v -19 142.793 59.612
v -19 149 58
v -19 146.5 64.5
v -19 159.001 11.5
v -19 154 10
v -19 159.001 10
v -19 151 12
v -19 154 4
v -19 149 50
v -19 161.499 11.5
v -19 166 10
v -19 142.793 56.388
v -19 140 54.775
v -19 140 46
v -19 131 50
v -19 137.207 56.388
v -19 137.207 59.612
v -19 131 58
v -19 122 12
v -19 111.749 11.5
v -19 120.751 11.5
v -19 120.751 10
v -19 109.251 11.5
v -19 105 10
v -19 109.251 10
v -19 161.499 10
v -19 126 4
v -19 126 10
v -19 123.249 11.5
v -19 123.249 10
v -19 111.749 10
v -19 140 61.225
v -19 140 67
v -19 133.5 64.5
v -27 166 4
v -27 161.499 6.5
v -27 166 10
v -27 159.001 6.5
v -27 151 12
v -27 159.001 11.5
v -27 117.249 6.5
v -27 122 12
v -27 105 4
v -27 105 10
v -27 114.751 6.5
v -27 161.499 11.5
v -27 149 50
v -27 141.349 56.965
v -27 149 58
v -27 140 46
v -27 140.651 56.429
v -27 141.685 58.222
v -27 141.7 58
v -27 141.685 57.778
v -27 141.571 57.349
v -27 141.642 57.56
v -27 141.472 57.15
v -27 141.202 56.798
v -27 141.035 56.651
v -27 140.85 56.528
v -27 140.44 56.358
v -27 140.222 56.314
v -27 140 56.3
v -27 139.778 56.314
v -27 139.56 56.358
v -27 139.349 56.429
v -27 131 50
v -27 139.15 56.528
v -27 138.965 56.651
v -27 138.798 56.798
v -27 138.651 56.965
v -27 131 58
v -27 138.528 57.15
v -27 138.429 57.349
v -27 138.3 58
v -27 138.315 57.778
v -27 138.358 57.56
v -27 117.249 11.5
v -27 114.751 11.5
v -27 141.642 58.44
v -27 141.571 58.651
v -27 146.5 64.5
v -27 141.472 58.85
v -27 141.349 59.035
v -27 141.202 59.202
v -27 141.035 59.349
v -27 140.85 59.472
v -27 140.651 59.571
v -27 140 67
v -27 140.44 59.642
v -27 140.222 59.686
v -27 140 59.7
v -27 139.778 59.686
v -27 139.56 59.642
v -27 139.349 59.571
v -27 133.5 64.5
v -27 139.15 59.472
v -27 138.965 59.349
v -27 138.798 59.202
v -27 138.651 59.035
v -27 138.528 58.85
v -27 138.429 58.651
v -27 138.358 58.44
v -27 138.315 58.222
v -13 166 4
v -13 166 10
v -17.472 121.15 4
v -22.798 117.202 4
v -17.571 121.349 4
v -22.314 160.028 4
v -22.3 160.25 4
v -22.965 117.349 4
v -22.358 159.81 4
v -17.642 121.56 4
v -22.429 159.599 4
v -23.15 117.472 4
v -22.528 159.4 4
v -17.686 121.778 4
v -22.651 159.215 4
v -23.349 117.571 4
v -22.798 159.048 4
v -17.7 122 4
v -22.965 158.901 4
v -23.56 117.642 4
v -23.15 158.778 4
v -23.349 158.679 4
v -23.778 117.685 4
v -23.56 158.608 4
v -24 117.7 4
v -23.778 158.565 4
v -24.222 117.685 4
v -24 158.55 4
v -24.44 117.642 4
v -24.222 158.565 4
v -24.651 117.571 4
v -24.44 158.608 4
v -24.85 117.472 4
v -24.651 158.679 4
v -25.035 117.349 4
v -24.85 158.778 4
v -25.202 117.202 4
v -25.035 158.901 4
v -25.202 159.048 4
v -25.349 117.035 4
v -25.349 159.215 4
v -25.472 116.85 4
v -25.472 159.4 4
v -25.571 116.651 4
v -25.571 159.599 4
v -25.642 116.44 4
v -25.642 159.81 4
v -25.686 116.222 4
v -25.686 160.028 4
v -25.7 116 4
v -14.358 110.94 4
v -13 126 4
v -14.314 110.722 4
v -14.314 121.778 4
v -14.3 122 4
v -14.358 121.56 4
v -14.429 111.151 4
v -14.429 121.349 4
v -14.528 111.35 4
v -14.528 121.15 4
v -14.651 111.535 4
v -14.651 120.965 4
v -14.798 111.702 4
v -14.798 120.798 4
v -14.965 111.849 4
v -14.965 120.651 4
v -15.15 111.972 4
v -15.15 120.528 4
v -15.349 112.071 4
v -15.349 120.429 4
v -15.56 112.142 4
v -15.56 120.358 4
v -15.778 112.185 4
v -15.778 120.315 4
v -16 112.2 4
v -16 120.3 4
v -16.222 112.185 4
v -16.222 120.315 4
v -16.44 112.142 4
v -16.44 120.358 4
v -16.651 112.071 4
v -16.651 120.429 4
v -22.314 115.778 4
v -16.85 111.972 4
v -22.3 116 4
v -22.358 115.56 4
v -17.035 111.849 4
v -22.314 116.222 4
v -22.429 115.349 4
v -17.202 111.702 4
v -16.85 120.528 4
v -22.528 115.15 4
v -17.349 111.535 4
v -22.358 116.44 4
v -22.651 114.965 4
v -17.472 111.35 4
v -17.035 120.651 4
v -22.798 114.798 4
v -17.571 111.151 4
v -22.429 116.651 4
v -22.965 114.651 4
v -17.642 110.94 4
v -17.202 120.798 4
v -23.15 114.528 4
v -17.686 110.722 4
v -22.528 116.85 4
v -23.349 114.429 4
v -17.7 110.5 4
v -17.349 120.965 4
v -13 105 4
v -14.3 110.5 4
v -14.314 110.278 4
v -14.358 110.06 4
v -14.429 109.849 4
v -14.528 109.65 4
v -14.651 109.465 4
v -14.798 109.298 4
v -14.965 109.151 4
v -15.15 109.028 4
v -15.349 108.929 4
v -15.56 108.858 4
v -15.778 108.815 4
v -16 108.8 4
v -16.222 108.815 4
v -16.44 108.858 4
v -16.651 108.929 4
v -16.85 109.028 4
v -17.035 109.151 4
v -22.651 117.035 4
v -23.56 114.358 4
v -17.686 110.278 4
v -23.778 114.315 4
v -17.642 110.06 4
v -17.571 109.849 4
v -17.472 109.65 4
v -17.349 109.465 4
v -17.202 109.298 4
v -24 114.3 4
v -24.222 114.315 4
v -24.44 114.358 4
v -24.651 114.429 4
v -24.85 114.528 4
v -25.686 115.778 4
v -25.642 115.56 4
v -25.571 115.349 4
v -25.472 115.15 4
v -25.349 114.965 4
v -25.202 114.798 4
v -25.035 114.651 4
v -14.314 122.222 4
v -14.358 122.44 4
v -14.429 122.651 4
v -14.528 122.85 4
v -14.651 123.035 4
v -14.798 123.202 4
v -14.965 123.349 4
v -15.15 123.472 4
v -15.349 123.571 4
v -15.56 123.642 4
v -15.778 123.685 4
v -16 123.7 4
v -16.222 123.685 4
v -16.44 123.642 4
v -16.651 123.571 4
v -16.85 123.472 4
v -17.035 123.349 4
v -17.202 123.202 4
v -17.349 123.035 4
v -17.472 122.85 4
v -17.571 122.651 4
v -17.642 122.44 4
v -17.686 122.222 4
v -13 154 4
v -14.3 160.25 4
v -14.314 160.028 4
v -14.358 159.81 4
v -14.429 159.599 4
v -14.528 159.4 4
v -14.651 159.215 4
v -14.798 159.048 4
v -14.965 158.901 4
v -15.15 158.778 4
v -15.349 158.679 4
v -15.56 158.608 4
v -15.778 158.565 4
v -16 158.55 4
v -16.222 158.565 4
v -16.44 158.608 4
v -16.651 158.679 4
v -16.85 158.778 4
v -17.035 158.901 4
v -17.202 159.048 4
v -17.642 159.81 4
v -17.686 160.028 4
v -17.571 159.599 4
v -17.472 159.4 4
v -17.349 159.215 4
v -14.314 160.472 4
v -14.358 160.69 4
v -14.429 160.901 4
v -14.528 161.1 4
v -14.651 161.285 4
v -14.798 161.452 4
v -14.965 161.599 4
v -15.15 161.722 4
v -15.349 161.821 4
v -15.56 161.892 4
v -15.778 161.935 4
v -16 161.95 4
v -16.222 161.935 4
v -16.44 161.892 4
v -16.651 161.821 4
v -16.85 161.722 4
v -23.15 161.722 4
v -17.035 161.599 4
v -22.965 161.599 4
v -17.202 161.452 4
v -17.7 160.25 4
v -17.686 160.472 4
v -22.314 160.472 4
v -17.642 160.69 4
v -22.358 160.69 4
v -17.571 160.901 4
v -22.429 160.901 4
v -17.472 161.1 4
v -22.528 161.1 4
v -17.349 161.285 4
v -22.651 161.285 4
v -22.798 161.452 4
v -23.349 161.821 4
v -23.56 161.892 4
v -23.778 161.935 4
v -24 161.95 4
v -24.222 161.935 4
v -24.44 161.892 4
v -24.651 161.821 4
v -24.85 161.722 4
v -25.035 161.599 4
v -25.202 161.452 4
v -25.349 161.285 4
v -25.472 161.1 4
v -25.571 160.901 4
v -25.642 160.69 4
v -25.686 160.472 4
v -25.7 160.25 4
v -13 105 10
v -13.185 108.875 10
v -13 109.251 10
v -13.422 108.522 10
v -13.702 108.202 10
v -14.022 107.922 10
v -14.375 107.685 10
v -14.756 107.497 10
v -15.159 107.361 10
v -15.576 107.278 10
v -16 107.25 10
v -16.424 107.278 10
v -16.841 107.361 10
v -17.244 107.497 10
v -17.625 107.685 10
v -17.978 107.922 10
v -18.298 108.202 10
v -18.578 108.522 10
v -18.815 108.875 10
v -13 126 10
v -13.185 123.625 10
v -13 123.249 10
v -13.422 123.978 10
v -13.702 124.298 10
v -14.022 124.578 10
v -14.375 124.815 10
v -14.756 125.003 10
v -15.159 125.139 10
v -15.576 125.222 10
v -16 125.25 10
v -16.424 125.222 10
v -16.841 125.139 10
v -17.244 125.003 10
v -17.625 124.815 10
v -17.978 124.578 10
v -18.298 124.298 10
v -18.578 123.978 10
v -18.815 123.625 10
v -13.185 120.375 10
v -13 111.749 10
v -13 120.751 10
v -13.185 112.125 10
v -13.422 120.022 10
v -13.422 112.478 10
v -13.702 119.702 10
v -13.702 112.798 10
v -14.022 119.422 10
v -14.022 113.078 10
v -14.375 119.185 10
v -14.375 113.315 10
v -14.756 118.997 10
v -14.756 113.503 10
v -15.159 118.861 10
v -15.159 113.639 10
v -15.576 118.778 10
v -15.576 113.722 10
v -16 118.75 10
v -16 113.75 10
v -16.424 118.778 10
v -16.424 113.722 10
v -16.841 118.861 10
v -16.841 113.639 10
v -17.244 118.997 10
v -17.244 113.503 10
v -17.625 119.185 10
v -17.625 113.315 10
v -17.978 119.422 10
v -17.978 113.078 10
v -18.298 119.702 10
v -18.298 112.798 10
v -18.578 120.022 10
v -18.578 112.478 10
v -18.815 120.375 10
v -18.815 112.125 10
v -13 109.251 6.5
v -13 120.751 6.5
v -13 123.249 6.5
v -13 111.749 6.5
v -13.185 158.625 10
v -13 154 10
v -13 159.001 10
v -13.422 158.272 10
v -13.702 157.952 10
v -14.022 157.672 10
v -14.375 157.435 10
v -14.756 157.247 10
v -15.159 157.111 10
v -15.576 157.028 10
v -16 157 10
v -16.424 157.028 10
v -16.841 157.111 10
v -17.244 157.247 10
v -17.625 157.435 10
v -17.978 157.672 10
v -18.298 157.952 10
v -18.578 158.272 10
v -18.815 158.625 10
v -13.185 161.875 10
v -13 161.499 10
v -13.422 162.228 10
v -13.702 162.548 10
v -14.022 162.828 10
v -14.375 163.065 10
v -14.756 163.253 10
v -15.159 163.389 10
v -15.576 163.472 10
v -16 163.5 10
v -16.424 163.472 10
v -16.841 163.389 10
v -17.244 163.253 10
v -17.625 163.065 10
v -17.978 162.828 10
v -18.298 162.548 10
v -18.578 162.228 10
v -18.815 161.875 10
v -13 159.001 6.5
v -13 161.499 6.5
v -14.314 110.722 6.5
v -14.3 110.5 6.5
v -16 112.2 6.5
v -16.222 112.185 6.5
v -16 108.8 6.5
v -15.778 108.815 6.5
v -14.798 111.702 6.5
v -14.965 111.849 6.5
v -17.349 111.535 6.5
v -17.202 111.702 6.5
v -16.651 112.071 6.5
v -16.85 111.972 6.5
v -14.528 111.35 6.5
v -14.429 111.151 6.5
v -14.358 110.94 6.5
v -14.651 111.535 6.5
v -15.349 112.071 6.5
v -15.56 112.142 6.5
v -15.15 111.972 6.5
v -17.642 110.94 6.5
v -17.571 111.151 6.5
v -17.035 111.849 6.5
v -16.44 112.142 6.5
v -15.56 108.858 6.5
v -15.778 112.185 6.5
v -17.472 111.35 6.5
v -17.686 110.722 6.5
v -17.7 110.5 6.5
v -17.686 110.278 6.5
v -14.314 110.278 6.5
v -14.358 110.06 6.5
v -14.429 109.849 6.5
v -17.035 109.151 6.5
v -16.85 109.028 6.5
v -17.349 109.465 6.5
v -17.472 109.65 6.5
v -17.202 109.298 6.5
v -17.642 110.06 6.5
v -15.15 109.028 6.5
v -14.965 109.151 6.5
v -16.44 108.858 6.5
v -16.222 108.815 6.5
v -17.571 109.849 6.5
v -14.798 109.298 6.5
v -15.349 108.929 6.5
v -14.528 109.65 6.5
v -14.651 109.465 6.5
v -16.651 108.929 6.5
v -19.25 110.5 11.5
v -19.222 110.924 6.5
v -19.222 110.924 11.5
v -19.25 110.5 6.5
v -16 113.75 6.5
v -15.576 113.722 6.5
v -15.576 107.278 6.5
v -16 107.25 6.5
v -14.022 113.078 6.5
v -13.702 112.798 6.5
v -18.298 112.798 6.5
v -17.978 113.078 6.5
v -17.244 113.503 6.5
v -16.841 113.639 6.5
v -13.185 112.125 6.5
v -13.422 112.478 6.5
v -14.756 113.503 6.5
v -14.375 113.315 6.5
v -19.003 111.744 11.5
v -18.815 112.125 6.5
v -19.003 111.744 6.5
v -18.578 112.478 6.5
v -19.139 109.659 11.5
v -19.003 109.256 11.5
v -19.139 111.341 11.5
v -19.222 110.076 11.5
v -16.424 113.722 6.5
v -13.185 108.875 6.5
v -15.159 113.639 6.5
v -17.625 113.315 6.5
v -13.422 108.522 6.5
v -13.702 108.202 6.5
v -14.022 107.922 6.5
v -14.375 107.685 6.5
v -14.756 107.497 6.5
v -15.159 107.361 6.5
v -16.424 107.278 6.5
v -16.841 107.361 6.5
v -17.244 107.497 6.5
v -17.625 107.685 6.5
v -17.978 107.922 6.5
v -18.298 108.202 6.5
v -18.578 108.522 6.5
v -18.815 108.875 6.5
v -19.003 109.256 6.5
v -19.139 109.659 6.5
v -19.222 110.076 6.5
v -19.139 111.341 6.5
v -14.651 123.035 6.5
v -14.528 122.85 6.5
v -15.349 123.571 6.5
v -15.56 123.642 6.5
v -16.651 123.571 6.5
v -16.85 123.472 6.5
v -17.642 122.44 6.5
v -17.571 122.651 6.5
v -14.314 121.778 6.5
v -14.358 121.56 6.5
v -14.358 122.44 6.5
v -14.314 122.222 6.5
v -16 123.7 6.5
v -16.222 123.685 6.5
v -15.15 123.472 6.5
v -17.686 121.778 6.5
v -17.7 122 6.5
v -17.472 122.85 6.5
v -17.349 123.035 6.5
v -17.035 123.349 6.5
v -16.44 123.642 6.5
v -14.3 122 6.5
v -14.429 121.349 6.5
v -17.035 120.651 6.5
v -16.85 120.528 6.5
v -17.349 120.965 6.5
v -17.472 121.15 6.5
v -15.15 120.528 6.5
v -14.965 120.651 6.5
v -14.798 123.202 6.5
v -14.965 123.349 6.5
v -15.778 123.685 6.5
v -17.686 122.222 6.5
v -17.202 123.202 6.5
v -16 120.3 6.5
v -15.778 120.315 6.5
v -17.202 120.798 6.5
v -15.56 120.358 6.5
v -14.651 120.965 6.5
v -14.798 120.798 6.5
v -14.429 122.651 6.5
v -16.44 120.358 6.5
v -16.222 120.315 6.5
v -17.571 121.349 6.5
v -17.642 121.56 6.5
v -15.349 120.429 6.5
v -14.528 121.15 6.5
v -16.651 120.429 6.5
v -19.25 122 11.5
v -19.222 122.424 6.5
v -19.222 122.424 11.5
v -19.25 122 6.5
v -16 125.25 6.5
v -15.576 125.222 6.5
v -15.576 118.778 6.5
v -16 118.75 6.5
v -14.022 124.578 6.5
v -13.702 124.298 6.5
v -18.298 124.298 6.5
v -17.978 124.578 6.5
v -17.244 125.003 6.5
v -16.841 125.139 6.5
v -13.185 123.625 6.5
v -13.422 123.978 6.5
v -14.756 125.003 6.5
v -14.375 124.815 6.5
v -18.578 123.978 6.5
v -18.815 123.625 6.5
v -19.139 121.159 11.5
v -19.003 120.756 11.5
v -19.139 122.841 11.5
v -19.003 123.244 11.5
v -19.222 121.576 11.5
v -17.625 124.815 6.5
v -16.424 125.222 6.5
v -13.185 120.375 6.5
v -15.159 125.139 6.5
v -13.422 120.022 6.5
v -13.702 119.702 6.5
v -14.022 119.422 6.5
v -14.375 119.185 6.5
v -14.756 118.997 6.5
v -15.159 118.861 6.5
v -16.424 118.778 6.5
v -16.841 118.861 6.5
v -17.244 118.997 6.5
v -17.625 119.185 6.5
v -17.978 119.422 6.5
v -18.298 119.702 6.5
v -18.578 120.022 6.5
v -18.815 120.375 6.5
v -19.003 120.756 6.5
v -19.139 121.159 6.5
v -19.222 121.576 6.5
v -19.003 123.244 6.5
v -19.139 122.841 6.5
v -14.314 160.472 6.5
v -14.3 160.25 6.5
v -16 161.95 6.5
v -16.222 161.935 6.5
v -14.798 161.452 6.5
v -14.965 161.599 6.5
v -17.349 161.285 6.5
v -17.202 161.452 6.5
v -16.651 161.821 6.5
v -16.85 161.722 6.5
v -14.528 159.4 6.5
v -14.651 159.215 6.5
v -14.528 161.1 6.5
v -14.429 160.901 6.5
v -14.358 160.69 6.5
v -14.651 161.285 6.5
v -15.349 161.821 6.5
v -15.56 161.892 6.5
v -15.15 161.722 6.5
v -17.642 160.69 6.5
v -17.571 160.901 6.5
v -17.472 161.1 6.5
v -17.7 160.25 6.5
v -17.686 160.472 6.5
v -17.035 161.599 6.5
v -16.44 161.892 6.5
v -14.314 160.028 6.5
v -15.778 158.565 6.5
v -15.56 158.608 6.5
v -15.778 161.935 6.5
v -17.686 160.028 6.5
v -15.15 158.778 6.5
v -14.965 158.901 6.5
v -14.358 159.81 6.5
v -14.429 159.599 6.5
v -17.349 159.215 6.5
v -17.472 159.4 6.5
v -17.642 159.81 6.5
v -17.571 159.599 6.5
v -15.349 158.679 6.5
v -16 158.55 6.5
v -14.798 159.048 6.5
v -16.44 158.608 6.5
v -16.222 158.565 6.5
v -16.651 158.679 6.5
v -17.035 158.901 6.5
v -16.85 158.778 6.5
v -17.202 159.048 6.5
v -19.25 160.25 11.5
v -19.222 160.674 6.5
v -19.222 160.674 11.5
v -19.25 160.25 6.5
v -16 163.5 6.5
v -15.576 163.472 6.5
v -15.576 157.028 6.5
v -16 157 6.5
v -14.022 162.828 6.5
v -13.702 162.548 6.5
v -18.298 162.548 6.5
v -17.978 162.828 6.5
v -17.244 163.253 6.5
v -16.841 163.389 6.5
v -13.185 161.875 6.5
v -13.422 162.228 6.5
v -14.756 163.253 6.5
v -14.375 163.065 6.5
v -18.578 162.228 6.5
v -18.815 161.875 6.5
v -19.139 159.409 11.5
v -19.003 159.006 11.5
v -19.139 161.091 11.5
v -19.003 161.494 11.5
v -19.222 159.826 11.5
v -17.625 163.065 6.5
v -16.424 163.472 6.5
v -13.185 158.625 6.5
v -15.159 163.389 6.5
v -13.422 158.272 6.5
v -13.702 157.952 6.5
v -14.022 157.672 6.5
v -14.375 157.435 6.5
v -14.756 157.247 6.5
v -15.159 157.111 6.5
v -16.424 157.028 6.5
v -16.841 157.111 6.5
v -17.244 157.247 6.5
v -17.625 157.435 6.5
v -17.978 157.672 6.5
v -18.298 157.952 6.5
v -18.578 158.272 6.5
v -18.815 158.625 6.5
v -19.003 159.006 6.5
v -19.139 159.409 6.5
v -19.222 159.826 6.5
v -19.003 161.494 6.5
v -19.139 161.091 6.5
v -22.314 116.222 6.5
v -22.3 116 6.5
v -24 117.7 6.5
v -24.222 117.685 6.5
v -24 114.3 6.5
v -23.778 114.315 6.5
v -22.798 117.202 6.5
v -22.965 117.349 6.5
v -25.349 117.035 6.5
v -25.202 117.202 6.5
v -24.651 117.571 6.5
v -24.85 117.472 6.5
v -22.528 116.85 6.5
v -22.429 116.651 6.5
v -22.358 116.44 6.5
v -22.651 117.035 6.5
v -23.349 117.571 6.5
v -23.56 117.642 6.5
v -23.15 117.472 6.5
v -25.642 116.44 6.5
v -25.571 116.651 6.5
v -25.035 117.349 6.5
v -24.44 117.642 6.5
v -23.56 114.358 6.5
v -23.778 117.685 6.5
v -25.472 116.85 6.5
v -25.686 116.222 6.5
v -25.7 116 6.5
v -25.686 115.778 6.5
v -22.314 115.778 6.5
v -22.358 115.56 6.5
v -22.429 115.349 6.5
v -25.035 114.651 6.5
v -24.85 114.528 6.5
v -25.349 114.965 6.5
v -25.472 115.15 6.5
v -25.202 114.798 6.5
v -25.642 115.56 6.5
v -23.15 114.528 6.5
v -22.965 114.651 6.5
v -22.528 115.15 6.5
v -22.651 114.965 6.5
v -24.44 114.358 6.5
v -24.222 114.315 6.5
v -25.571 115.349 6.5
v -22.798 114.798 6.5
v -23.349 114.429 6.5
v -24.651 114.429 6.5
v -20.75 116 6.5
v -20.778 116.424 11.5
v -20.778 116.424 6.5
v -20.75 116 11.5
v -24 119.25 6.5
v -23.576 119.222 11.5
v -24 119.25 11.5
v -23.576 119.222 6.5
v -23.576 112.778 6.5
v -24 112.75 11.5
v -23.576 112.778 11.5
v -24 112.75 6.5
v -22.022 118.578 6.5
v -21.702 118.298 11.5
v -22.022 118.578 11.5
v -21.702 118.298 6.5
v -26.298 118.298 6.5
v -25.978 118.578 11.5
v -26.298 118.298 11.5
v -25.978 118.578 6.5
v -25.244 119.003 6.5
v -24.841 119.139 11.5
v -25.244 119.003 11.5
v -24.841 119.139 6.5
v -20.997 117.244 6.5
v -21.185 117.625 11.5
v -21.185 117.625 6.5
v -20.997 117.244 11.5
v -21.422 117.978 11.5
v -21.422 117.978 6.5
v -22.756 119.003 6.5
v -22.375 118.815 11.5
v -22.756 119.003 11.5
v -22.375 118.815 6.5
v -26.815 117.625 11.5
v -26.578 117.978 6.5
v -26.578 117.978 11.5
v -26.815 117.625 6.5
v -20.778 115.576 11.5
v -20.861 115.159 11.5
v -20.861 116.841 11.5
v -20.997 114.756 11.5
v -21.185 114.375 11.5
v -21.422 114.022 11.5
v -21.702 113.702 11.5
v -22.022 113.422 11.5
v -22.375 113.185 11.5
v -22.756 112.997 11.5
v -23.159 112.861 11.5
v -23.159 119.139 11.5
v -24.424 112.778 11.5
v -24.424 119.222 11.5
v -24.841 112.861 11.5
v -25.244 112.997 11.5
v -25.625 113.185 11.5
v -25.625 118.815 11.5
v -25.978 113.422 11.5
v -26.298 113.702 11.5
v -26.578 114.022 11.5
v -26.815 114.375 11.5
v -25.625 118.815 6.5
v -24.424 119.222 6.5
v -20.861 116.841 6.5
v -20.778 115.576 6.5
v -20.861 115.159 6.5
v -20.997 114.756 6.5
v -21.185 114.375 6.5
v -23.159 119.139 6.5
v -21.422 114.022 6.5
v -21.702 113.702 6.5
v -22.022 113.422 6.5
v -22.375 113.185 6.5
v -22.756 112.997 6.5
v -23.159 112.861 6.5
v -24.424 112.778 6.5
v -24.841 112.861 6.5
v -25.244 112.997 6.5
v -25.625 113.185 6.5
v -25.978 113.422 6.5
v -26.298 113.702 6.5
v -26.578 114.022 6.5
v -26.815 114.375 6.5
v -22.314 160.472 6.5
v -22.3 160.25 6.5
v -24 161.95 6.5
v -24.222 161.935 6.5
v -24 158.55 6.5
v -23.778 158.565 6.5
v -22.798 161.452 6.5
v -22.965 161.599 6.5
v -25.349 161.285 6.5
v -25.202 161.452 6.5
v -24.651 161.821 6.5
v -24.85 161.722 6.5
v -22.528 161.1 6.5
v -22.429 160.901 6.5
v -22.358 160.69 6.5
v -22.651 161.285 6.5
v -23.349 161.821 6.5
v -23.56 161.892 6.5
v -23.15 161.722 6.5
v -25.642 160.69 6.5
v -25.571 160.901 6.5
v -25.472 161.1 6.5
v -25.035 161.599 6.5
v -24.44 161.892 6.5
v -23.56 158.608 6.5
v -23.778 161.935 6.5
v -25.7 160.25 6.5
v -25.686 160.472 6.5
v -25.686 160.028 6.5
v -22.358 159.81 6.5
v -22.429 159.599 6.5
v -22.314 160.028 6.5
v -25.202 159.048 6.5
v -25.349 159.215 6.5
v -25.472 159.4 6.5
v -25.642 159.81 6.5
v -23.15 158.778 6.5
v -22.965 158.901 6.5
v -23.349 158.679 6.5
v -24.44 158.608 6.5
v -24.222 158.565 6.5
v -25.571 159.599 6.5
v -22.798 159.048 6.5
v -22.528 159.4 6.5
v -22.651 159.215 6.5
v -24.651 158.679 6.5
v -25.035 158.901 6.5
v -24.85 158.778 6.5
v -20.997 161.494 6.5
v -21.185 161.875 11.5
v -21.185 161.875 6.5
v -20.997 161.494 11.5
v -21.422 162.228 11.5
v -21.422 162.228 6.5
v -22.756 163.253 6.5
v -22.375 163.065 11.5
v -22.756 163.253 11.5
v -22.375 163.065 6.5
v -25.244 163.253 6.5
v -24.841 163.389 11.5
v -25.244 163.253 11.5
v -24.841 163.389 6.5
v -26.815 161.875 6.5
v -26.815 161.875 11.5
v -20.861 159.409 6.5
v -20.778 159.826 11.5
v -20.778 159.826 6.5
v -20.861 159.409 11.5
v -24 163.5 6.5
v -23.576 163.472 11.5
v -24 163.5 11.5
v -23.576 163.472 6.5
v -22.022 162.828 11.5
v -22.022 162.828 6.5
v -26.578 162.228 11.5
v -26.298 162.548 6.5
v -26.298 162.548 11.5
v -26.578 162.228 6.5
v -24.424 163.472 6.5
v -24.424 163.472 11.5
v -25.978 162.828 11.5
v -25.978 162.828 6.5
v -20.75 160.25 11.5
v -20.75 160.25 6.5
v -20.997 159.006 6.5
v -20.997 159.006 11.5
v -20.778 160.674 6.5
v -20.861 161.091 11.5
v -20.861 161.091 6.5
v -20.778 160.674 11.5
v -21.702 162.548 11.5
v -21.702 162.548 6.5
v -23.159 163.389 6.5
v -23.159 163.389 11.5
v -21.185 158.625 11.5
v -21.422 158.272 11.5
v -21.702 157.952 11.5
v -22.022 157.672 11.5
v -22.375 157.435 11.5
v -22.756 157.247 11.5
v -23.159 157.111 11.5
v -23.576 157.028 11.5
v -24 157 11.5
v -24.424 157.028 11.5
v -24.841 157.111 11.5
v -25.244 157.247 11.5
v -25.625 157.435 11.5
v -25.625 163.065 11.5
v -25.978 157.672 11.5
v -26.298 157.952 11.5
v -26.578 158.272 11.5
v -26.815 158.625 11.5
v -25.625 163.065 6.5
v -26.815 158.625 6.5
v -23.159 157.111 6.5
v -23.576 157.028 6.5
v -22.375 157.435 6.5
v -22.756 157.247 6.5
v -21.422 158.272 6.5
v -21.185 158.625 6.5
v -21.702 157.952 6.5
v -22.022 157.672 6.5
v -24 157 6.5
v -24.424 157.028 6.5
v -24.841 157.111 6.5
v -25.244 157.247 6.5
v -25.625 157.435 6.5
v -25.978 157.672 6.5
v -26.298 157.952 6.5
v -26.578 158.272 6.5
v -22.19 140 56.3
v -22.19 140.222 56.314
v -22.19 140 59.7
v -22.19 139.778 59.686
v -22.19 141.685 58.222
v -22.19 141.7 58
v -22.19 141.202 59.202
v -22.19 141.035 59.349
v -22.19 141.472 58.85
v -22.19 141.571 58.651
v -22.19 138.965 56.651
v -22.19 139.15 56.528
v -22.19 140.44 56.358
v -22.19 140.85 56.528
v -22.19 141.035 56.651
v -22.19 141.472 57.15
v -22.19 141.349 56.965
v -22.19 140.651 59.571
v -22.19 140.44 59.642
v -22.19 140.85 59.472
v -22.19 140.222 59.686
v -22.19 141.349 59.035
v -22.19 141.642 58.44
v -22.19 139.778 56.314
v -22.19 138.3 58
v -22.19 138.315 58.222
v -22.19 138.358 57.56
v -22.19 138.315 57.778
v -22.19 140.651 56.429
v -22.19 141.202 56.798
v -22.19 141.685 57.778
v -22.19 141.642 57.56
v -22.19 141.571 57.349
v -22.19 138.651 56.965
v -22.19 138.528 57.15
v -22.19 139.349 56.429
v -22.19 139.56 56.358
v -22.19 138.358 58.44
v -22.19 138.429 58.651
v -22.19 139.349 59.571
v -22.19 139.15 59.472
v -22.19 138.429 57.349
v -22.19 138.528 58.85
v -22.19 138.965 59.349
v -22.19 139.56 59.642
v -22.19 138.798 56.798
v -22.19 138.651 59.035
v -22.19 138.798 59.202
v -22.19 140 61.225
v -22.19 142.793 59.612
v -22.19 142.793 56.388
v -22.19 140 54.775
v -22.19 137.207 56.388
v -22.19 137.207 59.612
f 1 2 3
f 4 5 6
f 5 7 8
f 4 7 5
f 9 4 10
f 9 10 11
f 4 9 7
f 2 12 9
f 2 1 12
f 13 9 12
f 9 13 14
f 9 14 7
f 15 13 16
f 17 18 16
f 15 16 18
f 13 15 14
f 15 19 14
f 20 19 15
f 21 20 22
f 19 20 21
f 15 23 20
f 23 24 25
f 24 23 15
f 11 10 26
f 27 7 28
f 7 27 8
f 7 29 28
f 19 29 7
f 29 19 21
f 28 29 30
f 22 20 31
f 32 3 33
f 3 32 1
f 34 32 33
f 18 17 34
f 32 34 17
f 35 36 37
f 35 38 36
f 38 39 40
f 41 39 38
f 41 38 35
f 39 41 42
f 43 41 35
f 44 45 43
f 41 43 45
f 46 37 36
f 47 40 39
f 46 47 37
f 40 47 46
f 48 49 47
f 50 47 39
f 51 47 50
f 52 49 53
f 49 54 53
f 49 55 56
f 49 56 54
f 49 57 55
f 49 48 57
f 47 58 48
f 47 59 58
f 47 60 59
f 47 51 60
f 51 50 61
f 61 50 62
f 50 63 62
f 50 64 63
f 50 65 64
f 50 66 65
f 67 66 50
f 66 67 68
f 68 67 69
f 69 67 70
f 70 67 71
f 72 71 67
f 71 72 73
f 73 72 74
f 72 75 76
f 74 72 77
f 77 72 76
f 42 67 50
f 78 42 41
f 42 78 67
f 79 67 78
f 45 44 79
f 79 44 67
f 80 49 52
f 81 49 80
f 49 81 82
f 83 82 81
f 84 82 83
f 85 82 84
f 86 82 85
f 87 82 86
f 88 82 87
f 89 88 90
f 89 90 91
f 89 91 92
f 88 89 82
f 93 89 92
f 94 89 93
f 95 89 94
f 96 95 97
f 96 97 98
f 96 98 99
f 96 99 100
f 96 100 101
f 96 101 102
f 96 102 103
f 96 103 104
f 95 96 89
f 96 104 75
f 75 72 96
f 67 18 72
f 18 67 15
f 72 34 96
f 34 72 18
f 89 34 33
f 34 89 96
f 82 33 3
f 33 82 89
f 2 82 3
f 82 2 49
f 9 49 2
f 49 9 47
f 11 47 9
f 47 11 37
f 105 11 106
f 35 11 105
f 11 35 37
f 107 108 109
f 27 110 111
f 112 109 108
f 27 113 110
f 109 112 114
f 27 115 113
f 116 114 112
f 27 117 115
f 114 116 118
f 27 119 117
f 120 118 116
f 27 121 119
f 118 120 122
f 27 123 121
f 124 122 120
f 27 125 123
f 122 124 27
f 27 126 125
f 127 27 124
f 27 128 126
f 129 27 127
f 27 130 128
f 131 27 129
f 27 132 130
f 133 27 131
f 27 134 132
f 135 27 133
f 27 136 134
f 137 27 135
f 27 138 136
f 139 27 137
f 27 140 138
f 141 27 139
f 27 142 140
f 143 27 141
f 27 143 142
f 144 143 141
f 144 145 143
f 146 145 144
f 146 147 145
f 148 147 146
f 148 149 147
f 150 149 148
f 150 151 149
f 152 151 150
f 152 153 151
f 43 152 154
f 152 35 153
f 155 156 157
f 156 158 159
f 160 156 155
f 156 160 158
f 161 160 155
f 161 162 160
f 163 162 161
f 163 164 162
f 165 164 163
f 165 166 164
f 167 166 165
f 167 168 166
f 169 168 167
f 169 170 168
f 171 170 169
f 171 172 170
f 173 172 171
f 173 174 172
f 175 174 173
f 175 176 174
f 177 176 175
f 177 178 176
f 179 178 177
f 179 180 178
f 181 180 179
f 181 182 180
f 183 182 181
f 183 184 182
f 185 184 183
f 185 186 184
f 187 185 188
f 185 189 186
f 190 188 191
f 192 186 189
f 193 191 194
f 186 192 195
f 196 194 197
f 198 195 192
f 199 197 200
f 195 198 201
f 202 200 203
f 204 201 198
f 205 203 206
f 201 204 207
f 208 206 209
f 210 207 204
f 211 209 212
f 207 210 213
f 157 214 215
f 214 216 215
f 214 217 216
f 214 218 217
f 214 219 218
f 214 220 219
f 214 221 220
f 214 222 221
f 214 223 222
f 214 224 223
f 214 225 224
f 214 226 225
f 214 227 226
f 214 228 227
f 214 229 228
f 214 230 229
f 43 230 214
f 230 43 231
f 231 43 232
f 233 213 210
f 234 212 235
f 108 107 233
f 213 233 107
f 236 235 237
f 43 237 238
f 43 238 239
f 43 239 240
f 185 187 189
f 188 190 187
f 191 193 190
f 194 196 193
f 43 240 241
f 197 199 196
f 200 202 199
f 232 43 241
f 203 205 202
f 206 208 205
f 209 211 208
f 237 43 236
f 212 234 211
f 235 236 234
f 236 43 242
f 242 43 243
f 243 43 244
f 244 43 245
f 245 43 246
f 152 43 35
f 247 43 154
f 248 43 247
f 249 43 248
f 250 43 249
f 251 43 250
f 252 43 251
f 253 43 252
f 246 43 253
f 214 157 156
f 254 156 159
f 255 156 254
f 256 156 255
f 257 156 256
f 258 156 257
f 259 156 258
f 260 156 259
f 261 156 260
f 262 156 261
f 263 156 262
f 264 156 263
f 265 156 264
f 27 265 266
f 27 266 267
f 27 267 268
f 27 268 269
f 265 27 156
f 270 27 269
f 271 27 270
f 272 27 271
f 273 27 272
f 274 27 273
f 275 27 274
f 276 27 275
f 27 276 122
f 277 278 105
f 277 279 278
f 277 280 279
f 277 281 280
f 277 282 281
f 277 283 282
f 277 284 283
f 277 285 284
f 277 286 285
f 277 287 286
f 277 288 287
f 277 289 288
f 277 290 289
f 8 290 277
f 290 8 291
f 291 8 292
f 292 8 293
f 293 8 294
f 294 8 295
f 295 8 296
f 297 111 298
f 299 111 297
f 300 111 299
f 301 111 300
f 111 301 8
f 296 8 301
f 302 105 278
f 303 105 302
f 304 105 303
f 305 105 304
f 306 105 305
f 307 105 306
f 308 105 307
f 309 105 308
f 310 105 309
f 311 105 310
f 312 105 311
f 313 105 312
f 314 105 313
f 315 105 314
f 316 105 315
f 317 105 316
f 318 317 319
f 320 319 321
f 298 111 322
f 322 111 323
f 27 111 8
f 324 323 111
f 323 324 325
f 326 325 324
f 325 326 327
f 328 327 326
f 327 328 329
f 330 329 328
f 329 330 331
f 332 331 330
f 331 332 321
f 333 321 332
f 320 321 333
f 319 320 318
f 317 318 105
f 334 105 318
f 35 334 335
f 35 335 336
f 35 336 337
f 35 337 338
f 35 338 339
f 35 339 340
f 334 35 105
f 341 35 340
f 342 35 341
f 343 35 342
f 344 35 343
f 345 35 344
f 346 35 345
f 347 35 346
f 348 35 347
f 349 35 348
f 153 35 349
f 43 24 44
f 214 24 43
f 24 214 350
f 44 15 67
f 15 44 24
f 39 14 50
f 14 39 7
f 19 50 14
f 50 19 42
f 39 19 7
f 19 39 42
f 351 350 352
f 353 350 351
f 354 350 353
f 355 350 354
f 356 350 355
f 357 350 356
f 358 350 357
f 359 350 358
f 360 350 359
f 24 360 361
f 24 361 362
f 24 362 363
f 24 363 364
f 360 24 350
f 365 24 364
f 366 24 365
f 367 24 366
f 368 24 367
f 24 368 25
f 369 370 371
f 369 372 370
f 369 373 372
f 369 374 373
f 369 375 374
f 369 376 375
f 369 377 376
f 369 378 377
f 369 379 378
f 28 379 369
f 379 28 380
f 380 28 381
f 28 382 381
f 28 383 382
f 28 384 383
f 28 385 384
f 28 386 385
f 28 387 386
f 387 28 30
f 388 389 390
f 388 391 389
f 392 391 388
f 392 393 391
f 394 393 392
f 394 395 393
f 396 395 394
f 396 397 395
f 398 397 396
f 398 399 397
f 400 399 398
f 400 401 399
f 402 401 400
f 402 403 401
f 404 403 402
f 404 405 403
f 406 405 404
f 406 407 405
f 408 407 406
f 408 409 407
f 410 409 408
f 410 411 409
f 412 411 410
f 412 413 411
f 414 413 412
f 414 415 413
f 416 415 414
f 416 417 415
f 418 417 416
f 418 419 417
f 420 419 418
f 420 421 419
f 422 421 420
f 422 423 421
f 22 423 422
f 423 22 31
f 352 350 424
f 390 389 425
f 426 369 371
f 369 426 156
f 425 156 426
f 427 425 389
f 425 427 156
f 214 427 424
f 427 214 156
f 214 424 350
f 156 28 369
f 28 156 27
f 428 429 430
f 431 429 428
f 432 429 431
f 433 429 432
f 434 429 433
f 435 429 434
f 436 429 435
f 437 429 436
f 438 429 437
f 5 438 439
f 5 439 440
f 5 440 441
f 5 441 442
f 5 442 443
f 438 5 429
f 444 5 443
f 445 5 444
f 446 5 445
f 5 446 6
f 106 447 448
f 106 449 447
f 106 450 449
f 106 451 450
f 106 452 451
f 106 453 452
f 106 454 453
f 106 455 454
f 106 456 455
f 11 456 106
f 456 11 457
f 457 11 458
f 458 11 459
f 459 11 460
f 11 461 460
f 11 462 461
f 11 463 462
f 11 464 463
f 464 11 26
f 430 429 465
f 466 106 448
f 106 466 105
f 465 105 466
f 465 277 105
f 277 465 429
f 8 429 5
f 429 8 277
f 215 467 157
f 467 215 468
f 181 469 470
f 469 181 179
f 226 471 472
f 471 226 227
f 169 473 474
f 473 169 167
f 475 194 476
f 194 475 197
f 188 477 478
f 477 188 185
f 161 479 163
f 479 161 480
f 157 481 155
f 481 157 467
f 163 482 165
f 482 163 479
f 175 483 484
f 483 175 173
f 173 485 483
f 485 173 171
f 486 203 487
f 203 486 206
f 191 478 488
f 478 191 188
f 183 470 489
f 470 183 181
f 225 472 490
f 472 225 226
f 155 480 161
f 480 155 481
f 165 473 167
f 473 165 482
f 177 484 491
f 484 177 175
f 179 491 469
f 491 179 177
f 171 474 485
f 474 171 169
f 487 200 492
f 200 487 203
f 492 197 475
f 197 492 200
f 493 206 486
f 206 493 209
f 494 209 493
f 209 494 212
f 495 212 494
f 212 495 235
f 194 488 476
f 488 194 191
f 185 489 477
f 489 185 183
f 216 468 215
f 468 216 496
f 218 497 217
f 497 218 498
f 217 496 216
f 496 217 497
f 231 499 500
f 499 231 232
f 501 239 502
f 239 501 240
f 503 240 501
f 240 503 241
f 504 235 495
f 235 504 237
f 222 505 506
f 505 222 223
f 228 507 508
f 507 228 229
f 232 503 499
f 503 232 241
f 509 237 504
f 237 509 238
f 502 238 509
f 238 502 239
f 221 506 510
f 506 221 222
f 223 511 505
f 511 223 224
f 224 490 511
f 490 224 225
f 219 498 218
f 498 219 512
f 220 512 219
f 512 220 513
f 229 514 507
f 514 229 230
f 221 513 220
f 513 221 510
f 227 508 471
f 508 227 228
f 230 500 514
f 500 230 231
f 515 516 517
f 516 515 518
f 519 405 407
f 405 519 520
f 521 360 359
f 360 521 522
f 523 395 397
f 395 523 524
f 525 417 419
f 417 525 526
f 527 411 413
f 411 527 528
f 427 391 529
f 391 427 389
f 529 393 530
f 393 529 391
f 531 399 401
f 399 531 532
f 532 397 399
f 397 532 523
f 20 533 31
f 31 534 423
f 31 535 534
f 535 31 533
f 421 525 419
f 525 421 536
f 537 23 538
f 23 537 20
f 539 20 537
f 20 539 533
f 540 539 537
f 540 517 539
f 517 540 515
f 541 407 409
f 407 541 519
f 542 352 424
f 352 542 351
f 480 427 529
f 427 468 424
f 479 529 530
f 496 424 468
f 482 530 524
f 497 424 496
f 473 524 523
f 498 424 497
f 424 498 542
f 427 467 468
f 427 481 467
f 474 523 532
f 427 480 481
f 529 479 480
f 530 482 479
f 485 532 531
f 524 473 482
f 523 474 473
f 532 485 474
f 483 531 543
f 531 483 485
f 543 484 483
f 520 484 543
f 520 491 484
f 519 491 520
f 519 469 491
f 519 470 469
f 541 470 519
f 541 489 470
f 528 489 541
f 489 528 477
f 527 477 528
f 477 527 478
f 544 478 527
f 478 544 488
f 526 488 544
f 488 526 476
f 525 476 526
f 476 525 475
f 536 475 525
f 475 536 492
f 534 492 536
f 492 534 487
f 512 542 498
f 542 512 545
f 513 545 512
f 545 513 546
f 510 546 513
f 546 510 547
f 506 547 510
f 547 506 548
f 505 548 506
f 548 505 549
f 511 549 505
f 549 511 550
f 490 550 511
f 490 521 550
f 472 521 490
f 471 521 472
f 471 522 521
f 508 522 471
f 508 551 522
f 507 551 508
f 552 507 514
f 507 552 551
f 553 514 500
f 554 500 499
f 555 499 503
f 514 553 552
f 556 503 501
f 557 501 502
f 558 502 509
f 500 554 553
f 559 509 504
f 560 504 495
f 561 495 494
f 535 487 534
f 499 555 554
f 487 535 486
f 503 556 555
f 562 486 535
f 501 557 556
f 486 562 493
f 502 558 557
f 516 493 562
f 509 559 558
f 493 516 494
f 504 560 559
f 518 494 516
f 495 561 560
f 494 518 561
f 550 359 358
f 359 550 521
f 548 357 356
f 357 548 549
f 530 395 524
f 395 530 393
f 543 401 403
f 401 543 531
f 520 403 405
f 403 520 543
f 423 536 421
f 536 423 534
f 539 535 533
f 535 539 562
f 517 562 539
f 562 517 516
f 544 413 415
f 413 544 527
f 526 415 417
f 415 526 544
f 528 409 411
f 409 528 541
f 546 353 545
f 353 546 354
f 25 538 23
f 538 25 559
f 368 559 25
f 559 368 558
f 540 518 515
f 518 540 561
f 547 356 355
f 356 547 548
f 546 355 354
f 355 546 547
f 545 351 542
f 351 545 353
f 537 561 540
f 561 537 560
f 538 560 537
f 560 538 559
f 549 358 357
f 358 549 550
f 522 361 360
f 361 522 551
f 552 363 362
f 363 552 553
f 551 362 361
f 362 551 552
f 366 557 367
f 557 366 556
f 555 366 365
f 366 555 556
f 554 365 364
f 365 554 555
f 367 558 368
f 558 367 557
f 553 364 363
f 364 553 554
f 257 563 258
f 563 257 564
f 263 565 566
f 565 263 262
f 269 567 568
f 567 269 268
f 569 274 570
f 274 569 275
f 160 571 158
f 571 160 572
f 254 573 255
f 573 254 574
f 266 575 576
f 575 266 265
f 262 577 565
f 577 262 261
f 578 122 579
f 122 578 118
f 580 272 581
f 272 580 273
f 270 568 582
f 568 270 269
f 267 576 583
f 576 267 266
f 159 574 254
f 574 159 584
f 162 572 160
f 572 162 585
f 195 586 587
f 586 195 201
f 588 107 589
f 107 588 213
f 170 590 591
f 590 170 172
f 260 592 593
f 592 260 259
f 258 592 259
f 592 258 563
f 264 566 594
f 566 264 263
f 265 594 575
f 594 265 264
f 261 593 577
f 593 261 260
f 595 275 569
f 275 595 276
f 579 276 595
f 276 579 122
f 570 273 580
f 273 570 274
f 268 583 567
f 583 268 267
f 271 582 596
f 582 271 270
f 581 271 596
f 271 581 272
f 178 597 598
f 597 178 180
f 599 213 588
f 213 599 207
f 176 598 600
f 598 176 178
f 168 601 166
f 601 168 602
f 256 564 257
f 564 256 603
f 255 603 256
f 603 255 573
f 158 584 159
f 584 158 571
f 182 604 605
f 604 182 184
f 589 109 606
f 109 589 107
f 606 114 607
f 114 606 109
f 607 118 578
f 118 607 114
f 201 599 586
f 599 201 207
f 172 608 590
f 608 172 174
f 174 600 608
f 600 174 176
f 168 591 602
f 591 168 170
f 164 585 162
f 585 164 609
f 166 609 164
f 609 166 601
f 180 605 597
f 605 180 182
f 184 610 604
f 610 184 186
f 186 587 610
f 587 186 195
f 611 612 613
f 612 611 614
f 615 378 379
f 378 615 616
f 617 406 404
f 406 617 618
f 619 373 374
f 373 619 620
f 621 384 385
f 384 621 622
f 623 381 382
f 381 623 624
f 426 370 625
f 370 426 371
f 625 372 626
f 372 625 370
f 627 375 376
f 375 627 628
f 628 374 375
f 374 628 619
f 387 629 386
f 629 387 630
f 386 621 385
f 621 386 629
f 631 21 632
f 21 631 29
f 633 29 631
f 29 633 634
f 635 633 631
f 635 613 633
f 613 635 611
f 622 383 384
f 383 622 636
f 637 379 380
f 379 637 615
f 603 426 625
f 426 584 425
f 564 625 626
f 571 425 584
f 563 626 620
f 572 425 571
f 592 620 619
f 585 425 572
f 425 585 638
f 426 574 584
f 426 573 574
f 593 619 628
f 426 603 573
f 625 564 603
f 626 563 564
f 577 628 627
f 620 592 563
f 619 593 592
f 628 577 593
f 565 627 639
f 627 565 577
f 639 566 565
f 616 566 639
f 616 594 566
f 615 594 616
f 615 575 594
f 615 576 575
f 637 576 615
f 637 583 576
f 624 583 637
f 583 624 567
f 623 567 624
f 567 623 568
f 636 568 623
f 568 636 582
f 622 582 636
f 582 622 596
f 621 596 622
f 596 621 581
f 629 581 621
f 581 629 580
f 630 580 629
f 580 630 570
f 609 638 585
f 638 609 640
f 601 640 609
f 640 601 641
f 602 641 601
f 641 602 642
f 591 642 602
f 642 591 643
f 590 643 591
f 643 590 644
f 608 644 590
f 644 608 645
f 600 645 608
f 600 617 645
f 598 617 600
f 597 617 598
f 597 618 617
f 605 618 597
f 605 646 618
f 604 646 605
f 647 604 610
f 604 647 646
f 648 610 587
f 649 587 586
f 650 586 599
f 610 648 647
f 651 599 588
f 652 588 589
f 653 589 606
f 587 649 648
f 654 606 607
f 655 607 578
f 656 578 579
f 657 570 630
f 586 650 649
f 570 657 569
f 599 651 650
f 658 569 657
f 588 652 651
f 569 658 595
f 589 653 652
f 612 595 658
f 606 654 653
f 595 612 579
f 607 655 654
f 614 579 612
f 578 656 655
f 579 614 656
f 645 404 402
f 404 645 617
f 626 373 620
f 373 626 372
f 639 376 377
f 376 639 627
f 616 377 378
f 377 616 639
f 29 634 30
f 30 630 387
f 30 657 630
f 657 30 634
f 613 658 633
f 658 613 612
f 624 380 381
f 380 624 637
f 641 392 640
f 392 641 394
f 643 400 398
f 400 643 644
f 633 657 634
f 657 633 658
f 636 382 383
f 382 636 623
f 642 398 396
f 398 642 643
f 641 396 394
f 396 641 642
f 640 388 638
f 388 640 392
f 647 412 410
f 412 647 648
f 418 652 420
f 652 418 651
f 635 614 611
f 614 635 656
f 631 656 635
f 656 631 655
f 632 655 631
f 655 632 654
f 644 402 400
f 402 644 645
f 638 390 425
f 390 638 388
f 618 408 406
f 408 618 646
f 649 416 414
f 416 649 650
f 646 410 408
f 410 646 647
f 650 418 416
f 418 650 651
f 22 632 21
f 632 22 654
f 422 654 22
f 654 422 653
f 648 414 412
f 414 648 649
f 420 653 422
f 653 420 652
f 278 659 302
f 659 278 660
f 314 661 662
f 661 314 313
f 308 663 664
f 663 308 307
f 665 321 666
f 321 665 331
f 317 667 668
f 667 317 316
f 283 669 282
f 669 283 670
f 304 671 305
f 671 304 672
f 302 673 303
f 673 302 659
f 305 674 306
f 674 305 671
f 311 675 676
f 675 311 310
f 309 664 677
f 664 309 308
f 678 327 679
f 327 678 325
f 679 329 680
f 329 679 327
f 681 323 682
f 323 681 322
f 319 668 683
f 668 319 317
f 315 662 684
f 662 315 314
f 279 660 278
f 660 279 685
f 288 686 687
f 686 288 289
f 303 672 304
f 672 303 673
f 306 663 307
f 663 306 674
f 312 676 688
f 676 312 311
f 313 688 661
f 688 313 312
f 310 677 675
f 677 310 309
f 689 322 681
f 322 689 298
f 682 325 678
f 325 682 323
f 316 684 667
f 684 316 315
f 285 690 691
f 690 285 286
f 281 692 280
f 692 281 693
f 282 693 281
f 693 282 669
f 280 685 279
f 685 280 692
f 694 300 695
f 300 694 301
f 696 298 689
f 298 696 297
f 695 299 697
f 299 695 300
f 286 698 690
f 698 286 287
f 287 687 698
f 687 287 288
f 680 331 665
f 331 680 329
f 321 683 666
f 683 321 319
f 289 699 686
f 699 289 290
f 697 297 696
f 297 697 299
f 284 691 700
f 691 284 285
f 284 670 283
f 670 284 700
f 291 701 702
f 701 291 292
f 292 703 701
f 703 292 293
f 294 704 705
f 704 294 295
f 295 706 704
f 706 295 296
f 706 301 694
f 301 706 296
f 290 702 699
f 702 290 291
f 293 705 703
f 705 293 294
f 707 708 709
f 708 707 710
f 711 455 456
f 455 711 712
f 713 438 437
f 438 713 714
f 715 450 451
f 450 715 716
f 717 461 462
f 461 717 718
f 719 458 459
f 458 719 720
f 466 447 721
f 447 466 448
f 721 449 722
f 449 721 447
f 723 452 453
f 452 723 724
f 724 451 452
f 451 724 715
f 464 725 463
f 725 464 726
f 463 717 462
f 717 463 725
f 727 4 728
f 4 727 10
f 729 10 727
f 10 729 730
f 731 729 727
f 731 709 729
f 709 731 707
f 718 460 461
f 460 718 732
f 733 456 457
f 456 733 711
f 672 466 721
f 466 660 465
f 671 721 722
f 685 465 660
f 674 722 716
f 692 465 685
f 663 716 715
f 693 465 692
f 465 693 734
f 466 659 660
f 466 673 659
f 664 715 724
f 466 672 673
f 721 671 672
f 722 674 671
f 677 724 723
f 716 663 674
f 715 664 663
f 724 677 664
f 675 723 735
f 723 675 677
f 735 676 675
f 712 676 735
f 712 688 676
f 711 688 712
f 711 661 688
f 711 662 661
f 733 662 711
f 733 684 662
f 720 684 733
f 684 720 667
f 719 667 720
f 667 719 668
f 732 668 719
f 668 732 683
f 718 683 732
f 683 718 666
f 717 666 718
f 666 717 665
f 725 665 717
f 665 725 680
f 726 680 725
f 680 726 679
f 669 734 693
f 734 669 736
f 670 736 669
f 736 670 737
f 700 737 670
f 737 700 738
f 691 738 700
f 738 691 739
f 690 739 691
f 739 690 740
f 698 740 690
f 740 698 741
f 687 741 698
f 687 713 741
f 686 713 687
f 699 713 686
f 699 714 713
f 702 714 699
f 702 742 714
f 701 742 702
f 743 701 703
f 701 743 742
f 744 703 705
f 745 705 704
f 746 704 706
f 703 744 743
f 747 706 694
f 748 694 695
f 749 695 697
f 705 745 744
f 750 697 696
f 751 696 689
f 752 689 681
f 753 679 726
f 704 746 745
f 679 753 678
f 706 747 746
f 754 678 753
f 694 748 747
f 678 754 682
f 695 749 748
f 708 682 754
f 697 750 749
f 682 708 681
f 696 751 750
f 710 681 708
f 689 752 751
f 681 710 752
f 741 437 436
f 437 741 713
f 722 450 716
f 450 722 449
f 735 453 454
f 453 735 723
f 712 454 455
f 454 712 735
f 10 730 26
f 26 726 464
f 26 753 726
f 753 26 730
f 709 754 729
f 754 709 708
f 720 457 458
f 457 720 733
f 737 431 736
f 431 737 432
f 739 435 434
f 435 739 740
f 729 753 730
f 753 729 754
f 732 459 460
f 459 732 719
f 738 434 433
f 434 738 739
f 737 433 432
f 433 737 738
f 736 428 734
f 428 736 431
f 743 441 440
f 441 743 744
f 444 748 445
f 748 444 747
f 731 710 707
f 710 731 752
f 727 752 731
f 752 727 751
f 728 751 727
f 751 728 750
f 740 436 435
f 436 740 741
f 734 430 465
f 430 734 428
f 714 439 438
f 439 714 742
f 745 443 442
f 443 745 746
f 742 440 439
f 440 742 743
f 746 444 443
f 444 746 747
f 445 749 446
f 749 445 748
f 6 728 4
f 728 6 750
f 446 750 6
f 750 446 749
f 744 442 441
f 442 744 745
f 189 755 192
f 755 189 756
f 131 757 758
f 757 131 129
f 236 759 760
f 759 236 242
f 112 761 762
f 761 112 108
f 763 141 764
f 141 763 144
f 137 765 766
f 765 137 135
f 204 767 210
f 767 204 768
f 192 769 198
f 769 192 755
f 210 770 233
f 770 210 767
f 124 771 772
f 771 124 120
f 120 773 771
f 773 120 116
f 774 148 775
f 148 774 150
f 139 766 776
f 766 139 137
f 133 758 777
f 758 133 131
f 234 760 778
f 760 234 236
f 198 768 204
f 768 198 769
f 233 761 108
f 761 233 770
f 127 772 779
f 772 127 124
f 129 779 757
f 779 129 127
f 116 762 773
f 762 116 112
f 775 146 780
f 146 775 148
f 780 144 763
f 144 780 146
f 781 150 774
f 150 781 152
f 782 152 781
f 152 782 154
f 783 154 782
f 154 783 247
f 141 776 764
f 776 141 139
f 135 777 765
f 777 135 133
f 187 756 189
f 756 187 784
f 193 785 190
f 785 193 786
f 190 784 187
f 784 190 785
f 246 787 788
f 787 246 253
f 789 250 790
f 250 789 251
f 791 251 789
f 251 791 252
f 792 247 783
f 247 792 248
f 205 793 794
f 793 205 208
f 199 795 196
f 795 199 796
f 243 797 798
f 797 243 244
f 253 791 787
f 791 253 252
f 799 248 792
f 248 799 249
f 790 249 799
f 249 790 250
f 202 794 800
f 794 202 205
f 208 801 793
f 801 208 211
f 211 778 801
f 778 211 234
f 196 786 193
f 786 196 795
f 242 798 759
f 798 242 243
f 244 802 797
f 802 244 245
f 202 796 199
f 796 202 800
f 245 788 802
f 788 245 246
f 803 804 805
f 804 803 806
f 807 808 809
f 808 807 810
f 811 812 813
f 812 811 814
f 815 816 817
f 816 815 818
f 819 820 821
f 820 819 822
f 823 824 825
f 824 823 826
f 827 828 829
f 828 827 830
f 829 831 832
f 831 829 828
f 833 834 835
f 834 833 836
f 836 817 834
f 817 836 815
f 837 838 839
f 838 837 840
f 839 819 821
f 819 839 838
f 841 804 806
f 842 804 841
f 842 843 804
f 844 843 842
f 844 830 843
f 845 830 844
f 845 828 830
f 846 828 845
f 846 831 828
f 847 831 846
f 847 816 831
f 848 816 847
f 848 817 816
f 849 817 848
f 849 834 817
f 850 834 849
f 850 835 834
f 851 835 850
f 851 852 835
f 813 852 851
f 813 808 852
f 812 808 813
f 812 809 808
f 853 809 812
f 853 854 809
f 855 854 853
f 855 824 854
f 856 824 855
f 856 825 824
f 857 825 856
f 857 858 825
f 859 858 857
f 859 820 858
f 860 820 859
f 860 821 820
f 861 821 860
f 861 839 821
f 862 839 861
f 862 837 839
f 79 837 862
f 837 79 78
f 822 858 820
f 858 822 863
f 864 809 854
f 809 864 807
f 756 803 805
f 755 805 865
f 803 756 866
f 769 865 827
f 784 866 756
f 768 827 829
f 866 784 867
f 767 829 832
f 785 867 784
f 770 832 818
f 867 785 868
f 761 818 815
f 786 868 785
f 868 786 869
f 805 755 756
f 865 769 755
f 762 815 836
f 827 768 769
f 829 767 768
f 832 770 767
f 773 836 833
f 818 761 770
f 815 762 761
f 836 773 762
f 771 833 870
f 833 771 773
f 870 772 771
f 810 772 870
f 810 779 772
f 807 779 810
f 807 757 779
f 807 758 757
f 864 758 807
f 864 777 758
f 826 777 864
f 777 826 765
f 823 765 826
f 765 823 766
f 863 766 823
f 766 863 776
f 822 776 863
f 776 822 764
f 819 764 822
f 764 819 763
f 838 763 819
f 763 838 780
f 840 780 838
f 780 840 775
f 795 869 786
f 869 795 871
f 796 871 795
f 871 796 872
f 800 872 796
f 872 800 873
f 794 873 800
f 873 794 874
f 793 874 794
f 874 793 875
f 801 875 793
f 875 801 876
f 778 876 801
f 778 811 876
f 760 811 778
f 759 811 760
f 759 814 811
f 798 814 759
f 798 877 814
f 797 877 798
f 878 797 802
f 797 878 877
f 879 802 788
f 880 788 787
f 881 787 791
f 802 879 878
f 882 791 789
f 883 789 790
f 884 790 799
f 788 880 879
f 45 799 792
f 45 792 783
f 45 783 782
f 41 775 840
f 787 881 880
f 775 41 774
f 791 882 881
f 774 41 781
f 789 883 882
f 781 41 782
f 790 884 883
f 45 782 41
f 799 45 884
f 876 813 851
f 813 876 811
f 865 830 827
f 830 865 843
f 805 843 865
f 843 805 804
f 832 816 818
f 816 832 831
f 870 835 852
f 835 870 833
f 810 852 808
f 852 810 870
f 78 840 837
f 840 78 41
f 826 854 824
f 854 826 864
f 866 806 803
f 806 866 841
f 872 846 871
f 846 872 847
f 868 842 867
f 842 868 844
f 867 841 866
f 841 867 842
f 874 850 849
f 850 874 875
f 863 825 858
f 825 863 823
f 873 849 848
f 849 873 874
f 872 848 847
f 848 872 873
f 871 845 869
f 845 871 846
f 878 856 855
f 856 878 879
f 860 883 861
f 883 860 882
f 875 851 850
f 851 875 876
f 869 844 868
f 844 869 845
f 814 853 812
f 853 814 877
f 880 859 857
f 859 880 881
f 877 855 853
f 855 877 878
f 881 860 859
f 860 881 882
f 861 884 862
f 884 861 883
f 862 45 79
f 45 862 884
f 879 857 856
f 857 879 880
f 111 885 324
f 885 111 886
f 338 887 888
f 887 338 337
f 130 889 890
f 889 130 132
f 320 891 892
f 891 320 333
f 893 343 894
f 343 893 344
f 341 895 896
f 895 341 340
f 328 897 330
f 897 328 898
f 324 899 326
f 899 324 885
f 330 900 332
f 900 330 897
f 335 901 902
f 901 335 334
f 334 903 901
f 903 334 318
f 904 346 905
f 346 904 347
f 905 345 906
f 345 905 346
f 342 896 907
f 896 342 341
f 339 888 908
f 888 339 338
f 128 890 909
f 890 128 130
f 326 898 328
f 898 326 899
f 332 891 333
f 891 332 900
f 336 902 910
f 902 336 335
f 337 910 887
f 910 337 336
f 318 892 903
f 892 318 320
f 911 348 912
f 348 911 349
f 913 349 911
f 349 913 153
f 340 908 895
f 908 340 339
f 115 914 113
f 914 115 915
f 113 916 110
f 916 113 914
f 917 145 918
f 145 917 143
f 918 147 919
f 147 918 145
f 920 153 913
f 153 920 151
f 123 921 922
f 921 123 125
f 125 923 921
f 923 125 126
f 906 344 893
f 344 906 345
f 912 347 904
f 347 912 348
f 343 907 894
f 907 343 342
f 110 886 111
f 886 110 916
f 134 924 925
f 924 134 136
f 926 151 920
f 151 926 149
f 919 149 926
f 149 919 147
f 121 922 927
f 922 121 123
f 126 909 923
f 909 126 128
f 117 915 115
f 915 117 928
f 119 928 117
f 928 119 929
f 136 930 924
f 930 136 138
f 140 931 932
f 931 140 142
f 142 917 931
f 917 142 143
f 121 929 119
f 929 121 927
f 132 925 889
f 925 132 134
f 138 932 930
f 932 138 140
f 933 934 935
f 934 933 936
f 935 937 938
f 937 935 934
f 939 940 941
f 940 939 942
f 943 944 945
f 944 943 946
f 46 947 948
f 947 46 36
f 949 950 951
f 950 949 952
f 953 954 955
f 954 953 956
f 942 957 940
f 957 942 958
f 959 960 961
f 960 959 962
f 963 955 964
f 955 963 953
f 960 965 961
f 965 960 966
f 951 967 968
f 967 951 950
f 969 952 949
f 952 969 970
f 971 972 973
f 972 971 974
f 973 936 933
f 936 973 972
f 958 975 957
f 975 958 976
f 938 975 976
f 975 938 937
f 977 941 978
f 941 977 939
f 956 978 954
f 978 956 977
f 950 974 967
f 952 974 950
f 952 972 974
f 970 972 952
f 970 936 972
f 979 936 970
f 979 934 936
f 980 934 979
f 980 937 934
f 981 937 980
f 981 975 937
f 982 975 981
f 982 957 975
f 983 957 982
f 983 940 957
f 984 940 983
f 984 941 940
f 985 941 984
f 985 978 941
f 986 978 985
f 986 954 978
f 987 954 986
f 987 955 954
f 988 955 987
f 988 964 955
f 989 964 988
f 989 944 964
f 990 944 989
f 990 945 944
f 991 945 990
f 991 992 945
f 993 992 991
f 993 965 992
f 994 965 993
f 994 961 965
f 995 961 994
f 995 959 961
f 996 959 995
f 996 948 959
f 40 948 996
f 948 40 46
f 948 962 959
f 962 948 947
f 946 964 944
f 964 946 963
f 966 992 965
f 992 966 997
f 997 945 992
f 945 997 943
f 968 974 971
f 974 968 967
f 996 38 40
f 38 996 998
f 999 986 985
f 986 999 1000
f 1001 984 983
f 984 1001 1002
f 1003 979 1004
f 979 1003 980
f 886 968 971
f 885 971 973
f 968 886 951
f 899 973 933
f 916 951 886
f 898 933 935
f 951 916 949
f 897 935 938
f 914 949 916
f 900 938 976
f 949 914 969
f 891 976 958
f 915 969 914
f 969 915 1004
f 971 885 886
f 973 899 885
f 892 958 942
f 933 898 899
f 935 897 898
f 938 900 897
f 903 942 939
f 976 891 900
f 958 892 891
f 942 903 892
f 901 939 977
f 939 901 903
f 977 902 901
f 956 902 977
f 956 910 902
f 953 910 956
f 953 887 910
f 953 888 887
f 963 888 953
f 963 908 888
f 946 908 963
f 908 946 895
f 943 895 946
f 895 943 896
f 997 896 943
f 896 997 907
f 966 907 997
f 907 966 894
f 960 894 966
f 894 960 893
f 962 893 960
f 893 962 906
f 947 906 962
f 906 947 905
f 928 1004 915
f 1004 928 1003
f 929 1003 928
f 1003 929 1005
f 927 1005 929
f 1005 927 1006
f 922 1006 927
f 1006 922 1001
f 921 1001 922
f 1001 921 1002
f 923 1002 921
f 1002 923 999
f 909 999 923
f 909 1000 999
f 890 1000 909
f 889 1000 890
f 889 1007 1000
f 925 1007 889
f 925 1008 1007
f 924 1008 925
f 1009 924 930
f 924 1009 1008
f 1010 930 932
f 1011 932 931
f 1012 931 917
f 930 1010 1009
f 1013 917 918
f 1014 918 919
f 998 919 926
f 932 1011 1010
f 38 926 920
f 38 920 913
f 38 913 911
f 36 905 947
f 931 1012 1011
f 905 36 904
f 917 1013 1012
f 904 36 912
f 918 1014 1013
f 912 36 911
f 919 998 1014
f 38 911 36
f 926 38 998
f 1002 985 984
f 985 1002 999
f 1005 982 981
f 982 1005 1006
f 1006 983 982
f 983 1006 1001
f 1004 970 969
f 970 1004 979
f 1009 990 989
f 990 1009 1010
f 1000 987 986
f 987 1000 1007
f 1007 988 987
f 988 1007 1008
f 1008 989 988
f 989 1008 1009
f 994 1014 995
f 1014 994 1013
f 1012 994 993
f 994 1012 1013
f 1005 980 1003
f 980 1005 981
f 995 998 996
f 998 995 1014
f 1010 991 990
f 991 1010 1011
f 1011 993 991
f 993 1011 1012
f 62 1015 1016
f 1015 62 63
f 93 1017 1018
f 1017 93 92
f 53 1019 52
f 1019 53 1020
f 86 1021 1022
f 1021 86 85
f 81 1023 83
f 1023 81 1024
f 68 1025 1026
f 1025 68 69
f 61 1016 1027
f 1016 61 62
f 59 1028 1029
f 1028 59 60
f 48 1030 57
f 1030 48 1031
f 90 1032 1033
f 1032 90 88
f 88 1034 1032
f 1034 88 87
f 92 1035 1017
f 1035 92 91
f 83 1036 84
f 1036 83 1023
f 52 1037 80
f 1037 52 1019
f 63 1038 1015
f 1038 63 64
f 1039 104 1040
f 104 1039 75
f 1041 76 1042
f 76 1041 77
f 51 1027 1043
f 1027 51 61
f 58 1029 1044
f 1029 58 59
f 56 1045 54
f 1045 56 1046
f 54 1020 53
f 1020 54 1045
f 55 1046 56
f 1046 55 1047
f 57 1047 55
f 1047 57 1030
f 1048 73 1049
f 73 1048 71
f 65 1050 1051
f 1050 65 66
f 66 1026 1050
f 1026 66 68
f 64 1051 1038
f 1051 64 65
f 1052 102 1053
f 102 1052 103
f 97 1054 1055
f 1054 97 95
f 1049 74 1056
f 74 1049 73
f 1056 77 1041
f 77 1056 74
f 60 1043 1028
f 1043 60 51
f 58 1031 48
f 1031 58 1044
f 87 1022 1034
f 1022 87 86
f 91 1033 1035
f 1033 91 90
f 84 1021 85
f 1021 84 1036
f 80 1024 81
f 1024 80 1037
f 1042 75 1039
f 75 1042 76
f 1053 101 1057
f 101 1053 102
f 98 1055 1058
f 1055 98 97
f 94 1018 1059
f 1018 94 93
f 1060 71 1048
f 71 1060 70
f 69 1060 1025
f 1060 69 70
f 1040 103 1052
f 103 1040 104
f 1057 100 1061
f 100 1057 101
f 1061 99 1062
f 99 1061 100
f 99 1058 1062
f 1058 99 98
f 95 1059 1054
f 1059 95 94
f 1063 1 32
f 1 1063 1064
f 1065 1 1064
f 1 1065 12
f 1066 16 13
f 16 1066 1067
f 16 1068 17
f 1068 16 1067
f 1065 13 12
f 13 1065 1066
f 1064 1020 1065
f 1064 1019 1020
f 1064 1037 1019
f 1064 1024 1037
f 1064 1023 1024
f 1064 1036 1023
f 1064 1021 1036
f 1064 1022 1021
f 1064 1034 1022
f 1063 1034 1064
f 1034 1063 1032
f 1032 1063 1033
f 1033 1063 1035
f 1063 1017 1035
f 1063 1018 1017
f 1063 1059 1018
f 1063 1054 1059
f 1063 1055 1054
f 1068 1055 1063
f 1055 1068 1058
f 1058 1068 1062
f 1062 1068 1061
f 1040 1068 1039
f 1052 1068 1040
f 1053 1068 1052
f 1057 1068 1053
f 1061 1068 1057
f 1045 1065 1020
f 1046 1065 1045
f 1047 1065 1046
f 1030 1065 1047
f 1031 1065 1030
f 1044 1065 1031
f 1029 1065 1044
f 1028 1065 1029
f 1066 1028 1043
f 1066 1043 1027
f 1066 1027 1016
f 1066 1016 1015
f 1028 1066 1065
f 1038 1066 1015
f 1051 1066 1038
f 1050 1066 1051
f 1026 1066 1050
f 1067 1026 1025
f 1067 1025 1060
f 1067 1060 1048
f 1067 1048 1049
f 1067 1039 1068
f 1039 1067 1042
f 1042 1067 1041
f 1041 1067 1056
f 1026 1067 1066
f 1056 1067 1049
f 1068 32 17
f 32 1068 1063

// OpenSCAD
$fn = 48;

module left_stanchion() {
    difference() {
        union() {
            // Column main body in (Y, Z) extruded along X from -27 to -19 (thickness 8mm)
            translate([-19.0, 0, 0])
            rotate([0, -90, 0])
            linear_extrude(height = 8.0) {
                difference() {
                    polygon(points = [
                        // Rear base
                        [4.0, 105.0],
                        [10.0, 105.0],
                        // Rear leg rising towards pivot (Y=140, Z=58)
                        [50.0, 131.0],
                        // Crown around pivot (Y=140, Z=58, R=9)
                        [58.0, 131.0],
                        [64.5, 133.5],
                        [67.0, 140.0],
                        [64.5, 146.5],
                        [58.0, 149.0],
                        [50.0, 149.0],
                        // Front leg down to base
                        [10.0, 166.0],
                        [4.0, 166.0]
                    ]);
                    // Central lightening window
                    polygon(points = [
                        [12.0, 122.0],
                        [12.0, 151.0],
                        [46.0, 140.0]
                    ]);
                }
            }

            // Inward Foot Pads (from X = -19.0 to -13.0, width 6.0mm, height Z = 4.0 .. 10.0)
            // Rear foot pad (Y in [105.0, 126.0])
            translate([-19.0, 105.0, 4.0]) cube([6.0, 21.0, 6.0]);
            // Front foot pad (Y in [154.0, 166.0])
            translate([-19.0, 154.0, 4.0]) cube([6.0, 12.0, 6.0]);
        }

        // 5 Bolt holes (clearance Dia 3.4mm, counterbore Dia 6.5mm x 3.5mm deep)
        // Bolt positions:
        // [-16, 110.5], [-16, 122.0], [-16, 160.25], [-24, 116.0], [-24, 160.25]
        for (pt = [[-16.0, 110.5], [-16.0, 122.0], [-16.0, 160.25], [-24.0, 116.0], [-24.0, 160.25]]) {
            translate([pt[0], pt[1], 3.0]) cylinder(d = 3.4, h = 8.0);
            translate([pt[0], pt[1], 6.5]) cylinder(d = 6.5, h = 5.0);
        }

        // Pivot hole M3 through at (Y=140, Z=58)
        translate([-28.0, 140.0, 58.0]) rotate([0, 90, 0]) cylinder(d = 3.4, h = 10.0);

        // Captive hex nut pocket on inner face (X = -19.0)
        translate([-18.99, 140.0, 58.0]) rotate([0, -90, 0])
            cylinder(d = 6.45, h = 3.2, $fn = 6);
    }
}

left_stanchion();
